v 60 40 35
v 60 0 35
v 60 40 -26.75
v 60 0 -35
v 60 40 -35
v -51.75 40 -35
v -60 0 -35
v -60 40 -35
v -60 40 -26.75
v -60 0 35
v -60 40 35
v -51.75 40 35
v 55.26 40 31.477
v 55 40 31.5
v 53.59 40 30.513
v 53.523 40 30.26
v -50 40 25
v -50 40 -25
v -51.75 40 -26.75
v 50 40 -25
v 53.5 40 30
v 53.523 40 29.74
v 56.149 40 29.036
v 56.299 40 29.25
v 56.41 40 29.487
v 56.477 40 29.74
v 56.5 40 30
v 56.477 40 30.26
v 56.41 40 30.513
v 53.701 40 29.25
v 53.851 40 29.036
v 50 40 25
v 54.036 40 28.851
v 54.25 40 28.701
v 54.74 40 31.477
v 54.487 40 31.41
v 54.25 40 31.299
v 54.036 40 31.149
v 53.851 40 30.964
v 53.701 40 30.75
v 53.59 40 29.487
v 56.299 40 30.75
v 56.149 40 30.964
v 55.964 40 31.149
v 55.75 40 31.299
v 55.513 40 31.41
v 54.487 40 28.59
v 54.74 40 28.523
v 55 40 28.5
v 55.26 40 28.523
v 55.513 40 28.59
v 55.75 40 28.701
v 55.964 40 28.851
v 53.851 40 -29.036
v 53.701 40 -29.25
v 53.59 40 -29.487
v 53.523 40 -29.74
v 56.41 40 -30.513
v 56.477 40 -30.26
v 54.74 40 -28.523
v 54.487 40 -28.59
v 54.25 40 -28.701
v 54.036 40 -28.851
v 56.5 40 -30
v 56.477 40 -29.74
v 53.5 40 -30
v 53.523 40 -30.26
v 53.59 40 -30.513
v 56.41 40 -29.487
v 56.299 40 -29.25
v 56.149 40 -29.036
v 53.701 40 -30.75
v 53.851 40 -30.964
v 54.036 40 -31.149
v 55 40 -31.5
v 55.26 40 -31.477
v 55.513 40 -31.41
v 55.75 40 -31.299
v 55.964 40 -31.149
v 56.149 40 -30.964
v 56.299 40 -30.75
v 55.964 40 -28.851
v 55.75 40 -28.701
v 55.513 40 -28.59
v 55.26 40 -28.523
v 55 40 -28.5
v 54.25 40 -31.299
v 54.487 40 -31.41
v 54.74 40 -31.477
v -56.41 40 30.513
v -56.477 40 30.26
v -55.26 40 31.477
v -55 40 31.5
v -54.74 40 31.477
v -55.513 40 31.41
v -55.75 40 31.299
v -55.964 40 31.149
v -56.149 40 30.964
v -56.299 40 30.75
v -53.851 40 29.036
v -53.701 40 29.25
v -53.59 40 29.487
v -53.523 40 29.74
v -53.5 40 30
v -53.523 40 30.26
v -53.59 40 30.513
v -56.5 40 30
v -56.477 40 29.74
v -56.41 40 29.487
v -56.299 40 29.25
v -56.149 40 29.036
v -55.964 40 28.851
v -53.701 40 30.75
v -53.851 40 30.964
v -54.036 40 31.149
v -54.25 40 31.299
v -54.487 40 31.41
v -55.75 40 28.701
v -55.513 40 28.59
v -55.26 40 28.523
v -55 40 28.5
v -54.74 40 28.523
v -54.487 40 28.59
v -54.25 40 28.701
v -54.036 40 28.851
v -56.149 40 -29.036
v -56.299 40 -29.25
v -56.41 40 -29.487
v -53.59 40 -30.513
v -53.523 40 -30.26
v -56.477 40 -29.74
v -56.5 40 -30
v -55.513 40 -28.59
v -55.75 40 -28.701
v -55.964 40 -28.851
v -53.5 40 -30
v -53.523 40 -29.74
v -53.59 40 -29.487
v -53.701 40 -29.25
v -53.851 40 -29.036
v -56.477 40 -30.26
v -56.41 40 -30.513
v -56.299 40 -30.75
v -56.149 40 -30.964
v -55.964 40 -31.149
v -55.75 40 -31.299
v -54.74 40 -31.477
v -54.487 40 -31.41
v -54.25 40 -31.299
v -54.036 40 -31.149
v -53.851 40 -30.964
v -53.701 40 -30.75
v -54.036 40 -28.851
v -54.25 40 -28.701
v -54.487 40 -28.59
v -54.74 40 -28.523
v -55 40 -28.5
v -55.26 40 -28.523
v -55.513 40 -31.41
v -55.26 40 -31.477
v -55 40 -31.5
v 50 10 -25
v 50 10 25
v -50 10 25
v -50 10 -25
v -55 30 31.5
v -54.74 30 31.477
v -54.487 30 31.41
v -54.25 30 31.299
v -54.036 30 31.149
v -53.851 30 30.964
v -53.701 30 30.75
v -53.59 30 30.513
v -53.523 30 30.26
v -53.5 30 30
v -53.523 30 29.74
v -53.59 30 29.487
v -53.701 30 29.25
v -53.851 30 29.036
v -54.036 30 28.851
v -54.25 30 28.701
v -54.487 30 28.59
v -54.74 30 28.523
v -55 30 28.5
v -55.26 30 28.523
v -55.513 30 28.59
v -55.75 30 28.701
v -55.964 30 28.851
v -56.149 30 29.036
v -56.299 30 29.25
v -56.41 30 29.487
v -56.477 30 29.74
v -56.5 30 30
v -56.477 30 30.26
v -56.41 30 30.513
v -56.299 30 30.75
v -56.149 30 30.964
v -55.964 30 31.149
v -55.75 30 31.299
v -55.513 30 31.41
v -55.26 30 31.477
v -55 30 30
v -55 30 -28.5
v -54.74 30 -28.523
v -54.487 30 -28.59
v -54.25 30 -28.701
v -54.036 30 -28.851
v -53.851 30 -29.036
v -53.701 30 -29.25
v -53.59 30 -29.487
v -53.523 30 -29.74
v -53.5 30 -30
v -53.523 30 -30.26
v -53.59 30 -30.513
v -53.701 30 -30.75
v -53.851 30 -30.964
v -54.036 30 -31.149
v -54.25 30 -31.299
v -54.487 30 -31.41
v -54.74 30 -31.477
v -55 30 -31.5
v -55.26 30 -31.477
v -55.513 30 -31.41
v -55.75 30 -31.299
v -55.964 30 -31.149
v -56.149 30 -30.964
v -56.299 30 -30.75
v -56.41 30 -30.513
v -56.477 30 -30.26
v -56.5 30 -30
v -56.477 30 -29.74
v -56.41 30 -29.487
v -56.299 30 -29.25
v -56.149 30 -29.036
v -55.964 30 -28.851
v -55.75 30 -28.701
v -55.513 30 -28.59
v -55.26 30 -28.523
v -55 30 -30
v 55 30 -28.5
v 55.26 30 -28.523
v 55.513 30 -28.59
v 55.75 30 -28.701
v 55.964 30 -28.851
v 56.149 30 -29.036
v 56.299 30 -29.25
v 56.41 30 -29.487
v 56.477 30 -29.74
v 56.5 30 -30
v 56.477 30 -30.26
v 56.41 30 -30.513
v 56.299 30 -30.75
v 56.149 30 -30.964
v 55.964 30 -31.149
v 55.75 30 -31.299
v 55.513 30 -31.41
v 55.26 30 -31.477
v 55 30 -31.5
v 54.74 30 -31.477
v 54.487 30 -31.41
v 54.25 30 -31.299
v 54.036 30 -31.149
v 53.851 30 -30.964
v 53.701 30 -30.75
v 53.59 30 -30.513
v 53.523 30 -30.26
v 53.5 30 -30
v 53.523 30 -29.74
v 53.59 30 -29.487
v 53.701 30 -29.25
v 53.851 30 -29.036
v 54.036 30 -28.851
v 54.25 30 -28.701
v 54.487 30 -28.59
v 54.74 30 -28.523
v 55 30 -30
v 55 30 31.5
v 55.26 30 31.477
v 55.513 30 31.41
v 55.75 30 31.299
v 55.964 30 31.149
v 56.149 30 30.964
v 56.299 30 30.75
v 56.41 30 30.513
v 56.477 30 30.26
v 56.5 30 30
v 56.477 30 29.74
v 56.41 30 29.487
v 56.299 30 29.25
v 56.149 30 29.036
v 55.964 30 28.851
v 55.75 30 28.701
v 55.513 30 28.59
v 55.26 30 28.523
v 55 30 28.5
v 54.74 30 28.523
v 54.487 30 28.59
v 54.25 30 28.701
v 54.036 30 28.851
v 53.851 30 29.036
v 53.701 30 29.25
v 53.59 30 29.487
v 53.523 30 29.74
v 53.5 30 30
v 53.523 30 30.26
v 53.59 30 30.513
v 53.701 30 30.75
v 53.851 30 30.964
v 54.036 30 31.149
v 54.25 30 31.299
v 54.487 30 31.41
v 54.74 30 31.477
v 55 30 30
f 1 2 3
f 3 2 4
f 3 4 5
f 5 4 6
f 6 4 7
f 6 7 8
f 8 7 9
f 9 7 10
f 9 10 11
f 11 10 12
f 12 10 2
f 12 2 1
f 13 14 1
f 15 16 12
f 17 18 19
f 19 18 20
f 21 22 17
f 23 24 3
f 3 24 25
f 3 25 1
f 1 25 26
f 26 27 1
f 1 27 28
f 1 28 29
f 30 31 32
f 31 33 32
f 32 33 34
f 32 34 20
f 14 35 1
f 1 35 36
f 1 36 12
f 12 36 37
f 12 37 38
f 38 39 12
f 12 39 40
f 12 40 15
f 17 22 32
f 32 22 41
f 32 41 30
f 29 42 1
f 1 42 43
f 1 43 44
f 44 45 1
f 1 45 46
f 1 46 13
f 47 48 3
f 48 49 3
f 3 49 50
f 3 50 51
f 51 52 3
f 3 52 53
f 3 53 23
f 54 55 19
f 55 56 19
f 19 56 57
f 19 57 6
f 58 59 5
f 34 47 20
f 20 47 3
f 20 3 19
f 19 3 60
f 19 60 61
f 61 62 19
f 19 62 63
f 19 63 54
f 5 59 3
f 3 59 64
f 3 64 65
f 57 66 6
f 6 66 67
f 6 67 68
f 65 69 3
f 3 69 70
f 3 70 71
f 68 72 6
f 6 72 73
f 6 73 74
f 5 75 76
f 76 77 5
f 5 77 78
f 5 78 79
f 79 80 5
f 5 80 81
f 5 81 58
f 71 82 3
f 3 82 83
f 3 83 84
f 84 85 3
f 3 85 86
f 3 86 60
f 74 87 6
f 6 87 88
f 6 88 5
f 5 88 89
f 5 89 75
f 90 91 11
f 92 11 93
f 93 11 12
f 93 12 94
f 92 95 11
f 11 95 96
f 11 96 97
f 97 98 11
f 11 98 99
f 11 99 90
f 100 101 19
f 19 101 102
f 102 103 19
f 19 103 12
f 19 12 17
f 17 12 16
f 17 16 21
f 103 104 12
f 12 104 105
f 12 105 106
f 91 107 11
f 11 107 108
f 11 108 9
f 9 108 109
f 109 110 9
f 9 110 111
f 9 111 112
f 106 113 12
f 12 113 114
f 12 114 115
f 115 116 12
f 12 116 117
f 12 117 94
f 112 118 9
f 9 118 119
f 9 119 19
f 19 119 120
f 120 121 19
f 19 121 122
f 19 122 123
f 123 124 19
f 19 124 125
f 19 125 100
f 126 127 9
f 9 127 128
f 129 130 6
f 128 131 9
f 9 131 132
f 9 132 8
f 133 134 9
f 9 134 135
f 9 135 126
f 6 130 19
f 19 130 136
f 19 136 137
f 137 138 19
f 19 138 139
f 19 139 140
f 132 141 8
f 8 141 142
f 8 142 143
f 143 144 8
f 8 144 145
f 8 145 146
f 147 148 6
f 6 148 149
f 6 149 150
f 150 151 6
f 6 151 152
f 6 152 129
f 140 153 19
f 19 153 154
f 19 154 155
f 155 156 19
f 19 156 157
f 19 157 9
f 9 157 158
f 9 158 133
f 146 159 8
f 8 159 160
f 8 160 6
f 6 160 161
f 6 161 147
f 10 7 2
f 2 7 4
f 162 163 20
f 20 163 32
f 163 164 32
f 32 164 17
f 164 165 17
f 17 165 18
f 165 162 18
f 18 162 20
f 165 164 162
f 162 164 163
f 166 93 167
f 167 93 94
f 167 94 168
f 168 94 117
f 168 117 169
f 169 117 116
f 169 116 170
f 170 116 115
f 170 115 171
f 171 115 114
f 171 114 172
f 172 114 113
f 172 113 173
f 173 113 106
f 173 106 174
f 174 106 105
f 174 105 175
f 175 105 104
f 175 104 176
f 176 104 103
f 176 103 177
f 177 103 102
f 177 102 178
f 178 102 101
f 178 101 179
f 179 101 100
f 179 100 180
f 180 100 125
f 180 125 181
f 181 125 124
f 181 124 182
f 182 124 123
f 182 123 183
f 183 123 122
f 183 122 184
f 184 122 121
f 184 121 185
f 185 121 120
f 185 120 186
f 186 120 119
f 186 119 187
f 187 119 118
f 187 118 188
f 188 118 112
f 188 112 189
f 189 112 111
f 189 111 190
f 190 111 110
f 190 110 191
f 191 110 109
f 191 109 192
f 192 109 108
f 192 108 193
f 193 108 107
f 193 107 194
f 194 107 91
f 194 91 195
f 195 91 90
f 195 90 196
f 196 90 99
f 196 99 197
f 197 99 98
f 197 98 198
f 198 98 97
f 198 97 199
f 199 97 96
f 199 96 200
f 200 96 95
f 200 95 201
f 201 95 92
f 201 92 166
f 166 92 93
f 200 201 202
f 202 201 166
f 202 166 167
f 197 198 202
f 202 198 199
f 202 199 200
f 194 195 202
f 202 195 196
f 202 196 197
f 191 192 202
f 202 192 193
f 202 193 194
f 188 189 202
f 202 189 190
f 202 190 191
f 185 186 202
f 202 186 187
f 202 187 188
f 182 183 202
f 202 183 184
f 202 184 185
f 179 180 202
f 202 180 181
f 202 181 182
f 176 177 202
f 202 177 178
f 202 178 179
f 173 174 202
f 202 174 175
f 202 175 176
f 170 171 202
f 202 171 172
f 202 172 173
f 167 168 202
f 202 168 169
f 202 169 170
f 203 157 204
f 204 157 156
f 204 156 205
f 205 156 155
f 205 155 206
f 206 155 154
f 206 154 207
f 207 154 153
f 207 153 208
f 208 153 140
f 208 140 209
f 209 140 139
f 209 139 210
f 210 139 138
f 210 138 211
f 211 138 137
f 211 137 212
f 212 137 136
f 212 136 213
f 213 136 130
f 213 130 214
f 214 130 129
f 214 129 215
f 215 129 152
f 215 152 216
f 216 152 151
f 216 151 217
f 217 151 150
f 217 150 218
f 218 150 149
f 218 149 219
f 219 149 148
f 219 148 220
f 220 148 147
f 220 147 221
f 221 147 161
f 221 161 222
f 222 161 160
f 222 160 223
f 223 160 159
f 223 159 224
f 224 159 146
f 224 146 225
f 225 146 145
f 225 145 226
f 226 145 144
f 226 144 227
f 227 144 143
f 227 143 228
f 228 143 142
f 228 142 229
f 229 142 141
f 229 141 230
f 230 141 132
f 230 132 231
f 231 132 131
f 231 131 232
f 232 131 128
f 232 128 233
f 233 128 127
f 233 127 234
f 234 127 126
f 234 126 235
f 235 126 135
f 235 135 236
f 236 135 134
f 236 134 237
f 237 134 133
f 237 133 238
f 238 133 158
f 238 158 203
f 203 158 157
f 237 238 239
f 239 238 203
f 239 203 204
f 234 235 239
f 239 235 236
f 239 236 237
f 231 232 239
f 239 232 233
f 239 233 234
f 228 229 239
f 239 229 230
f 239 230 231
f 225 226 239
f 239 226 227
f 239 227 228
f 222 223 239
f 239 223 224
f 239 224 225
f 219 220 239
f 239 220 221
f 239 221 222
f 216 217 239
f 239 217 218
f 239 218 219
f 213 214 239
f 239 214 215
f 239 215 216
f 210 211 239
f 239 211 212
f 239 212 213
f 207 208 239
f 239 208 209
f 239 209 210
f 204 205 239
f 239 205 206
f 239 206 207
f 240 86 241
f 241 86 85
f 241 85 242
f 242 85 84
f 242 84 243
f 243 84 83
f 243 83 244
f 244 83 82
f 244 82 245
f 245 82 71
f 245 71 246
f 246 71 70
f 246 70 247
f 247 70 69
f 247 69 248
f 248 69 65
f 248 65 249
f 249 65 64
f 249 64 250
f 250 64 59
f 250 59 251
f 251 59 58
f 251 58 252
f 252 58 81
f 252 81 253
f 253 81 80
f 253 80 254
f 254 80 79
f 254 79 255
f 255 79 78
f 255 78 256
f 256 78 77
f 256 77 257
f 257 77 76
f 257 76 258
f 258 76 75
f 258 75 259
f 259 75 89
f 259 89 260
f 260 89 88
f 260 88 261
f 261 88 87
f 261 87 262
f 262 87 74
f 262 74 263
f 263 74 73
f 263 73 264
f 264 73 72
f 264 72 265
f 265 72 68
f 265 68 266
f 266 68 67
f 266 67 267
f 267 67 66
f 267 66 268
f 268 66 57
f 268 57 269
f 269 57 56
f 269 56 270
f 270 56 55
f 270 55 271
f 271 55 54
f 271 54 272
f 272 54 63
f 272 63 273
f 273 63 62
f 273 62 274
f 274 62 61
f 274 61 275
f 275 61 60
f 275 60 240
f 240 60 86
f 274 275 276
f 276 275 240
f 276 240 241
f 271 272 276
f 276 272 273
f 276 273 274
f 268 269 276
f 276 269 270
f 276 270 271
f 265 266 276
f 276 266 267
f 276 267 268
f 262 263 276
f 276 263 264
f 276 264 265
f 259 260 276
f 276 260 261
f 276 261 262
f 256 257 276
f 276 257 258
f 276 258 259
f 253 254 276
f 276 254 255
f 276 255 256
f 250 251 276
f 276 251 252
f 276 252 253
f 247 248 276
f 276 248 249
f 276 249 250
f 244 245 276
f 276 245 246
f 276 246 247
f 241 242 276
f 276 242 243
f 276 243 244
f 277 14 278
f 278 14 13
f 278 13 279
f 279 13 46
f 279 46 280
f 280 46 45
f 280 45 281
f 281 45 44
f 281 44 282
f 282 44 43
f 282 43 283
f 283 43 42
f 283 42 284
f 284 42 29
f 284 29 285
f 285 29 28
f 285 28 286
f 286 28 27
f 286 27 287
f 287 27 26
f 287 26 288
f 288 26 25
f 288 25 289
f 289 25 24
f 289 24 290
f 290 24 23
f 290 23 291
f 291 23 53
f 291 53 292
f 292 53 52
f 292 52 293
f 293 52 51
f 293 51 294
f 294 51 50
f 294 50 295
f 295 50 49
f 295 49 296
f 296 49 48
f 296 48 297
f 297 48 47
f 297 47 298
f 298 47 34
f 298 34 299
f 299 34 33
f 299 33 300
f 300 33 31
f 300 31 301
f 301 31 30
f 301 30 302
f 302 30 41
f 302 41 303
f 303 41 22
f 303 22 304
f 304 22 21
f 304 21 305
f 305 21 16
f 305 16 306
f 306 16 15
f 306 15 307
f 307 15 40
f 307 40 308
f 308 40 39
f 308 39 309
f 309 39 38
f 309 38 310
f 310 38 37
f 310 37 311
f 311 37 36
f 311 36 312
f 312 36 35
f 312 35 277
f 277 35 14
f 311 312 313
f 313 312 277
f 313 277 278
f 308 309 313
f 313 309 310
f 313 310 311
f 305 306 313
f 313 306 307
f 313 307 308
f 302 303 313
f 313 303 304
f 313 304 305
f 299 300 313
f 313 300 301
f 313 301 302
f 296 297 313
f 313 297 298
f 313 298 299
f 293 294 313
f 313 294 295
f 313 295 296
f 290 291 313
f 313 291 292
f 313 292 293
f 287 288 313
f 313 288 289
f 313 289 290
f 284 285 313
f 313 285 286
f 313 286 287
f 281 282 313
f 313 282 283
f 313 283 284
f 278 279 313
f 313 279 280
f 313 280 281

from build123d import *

# Parameters (mm, degrees)
CROQUIS1_W              = 120
CROQUIS1_H              = 70
SALIENTE_EXTRUIR1_DEPTH = 40
CROQUIS2_W              = 100
CROQUIS2_H              = 50
CORTAR_EXTRUIR1_DEPTH   = 30
CROQUIS3_R              = 1.5
CORTAR_EXTRUIR2_DEPTH   = 10


with BuildPart() as part:
    # Croquis1 → Saliente-Extruir1 (new body)
    with BuildSketch(Plane(origin=(0, 0, 0), x_dir=(1, 0, 0), z_dir=(0, 1, 0))):
        Rectangle(CROQUIS1_W, CROQUIS1_H)
    extrude(amount=SALIENTE_EXTRUIR1_DEPTH)

    # Croquis2 → Cortar-Extruir1 (cut)
    with BuildSketch(Plane(origin=(0, 40, 0), x_dir=(1, 0, 0), z_dir=(0, 1, 0))):
        Rectangle(CROQUIS2_W, CROQUIS2_H)
    extrude(amount=-CORTAR_EXTRUIR1_DEPTH, mode=Mode.SUBTRACT)

    # Croquis3 → Cortar-Extruir2 (cut)
    with BuildSketch(Plane(origin=(0, 40, 0), x_dir=(1, 0, 0), z_dir=(0, 1, 0))):
        with Locations(Location((-55, -30, 0), (0, 0, 270))):
            Circle(CROQUIS3_R)
        with Locations(Location((-55, 30, 0), (0, 0, 270))):
            Circle(CROQUIS3_R)
        with Locations(Location((55, 30, 0), (0, 0, 270))):
            Circle(CROQUIS3_R)
        with Locations(Location((55, -30, 0), (0, 0, 270))):
            Circle(CROQUIS3_R)
    extrude(amount=-CORTAR_EXTRUIR2_DEPTH, mode=Mode.SUBTRACT)


solid = part.part
